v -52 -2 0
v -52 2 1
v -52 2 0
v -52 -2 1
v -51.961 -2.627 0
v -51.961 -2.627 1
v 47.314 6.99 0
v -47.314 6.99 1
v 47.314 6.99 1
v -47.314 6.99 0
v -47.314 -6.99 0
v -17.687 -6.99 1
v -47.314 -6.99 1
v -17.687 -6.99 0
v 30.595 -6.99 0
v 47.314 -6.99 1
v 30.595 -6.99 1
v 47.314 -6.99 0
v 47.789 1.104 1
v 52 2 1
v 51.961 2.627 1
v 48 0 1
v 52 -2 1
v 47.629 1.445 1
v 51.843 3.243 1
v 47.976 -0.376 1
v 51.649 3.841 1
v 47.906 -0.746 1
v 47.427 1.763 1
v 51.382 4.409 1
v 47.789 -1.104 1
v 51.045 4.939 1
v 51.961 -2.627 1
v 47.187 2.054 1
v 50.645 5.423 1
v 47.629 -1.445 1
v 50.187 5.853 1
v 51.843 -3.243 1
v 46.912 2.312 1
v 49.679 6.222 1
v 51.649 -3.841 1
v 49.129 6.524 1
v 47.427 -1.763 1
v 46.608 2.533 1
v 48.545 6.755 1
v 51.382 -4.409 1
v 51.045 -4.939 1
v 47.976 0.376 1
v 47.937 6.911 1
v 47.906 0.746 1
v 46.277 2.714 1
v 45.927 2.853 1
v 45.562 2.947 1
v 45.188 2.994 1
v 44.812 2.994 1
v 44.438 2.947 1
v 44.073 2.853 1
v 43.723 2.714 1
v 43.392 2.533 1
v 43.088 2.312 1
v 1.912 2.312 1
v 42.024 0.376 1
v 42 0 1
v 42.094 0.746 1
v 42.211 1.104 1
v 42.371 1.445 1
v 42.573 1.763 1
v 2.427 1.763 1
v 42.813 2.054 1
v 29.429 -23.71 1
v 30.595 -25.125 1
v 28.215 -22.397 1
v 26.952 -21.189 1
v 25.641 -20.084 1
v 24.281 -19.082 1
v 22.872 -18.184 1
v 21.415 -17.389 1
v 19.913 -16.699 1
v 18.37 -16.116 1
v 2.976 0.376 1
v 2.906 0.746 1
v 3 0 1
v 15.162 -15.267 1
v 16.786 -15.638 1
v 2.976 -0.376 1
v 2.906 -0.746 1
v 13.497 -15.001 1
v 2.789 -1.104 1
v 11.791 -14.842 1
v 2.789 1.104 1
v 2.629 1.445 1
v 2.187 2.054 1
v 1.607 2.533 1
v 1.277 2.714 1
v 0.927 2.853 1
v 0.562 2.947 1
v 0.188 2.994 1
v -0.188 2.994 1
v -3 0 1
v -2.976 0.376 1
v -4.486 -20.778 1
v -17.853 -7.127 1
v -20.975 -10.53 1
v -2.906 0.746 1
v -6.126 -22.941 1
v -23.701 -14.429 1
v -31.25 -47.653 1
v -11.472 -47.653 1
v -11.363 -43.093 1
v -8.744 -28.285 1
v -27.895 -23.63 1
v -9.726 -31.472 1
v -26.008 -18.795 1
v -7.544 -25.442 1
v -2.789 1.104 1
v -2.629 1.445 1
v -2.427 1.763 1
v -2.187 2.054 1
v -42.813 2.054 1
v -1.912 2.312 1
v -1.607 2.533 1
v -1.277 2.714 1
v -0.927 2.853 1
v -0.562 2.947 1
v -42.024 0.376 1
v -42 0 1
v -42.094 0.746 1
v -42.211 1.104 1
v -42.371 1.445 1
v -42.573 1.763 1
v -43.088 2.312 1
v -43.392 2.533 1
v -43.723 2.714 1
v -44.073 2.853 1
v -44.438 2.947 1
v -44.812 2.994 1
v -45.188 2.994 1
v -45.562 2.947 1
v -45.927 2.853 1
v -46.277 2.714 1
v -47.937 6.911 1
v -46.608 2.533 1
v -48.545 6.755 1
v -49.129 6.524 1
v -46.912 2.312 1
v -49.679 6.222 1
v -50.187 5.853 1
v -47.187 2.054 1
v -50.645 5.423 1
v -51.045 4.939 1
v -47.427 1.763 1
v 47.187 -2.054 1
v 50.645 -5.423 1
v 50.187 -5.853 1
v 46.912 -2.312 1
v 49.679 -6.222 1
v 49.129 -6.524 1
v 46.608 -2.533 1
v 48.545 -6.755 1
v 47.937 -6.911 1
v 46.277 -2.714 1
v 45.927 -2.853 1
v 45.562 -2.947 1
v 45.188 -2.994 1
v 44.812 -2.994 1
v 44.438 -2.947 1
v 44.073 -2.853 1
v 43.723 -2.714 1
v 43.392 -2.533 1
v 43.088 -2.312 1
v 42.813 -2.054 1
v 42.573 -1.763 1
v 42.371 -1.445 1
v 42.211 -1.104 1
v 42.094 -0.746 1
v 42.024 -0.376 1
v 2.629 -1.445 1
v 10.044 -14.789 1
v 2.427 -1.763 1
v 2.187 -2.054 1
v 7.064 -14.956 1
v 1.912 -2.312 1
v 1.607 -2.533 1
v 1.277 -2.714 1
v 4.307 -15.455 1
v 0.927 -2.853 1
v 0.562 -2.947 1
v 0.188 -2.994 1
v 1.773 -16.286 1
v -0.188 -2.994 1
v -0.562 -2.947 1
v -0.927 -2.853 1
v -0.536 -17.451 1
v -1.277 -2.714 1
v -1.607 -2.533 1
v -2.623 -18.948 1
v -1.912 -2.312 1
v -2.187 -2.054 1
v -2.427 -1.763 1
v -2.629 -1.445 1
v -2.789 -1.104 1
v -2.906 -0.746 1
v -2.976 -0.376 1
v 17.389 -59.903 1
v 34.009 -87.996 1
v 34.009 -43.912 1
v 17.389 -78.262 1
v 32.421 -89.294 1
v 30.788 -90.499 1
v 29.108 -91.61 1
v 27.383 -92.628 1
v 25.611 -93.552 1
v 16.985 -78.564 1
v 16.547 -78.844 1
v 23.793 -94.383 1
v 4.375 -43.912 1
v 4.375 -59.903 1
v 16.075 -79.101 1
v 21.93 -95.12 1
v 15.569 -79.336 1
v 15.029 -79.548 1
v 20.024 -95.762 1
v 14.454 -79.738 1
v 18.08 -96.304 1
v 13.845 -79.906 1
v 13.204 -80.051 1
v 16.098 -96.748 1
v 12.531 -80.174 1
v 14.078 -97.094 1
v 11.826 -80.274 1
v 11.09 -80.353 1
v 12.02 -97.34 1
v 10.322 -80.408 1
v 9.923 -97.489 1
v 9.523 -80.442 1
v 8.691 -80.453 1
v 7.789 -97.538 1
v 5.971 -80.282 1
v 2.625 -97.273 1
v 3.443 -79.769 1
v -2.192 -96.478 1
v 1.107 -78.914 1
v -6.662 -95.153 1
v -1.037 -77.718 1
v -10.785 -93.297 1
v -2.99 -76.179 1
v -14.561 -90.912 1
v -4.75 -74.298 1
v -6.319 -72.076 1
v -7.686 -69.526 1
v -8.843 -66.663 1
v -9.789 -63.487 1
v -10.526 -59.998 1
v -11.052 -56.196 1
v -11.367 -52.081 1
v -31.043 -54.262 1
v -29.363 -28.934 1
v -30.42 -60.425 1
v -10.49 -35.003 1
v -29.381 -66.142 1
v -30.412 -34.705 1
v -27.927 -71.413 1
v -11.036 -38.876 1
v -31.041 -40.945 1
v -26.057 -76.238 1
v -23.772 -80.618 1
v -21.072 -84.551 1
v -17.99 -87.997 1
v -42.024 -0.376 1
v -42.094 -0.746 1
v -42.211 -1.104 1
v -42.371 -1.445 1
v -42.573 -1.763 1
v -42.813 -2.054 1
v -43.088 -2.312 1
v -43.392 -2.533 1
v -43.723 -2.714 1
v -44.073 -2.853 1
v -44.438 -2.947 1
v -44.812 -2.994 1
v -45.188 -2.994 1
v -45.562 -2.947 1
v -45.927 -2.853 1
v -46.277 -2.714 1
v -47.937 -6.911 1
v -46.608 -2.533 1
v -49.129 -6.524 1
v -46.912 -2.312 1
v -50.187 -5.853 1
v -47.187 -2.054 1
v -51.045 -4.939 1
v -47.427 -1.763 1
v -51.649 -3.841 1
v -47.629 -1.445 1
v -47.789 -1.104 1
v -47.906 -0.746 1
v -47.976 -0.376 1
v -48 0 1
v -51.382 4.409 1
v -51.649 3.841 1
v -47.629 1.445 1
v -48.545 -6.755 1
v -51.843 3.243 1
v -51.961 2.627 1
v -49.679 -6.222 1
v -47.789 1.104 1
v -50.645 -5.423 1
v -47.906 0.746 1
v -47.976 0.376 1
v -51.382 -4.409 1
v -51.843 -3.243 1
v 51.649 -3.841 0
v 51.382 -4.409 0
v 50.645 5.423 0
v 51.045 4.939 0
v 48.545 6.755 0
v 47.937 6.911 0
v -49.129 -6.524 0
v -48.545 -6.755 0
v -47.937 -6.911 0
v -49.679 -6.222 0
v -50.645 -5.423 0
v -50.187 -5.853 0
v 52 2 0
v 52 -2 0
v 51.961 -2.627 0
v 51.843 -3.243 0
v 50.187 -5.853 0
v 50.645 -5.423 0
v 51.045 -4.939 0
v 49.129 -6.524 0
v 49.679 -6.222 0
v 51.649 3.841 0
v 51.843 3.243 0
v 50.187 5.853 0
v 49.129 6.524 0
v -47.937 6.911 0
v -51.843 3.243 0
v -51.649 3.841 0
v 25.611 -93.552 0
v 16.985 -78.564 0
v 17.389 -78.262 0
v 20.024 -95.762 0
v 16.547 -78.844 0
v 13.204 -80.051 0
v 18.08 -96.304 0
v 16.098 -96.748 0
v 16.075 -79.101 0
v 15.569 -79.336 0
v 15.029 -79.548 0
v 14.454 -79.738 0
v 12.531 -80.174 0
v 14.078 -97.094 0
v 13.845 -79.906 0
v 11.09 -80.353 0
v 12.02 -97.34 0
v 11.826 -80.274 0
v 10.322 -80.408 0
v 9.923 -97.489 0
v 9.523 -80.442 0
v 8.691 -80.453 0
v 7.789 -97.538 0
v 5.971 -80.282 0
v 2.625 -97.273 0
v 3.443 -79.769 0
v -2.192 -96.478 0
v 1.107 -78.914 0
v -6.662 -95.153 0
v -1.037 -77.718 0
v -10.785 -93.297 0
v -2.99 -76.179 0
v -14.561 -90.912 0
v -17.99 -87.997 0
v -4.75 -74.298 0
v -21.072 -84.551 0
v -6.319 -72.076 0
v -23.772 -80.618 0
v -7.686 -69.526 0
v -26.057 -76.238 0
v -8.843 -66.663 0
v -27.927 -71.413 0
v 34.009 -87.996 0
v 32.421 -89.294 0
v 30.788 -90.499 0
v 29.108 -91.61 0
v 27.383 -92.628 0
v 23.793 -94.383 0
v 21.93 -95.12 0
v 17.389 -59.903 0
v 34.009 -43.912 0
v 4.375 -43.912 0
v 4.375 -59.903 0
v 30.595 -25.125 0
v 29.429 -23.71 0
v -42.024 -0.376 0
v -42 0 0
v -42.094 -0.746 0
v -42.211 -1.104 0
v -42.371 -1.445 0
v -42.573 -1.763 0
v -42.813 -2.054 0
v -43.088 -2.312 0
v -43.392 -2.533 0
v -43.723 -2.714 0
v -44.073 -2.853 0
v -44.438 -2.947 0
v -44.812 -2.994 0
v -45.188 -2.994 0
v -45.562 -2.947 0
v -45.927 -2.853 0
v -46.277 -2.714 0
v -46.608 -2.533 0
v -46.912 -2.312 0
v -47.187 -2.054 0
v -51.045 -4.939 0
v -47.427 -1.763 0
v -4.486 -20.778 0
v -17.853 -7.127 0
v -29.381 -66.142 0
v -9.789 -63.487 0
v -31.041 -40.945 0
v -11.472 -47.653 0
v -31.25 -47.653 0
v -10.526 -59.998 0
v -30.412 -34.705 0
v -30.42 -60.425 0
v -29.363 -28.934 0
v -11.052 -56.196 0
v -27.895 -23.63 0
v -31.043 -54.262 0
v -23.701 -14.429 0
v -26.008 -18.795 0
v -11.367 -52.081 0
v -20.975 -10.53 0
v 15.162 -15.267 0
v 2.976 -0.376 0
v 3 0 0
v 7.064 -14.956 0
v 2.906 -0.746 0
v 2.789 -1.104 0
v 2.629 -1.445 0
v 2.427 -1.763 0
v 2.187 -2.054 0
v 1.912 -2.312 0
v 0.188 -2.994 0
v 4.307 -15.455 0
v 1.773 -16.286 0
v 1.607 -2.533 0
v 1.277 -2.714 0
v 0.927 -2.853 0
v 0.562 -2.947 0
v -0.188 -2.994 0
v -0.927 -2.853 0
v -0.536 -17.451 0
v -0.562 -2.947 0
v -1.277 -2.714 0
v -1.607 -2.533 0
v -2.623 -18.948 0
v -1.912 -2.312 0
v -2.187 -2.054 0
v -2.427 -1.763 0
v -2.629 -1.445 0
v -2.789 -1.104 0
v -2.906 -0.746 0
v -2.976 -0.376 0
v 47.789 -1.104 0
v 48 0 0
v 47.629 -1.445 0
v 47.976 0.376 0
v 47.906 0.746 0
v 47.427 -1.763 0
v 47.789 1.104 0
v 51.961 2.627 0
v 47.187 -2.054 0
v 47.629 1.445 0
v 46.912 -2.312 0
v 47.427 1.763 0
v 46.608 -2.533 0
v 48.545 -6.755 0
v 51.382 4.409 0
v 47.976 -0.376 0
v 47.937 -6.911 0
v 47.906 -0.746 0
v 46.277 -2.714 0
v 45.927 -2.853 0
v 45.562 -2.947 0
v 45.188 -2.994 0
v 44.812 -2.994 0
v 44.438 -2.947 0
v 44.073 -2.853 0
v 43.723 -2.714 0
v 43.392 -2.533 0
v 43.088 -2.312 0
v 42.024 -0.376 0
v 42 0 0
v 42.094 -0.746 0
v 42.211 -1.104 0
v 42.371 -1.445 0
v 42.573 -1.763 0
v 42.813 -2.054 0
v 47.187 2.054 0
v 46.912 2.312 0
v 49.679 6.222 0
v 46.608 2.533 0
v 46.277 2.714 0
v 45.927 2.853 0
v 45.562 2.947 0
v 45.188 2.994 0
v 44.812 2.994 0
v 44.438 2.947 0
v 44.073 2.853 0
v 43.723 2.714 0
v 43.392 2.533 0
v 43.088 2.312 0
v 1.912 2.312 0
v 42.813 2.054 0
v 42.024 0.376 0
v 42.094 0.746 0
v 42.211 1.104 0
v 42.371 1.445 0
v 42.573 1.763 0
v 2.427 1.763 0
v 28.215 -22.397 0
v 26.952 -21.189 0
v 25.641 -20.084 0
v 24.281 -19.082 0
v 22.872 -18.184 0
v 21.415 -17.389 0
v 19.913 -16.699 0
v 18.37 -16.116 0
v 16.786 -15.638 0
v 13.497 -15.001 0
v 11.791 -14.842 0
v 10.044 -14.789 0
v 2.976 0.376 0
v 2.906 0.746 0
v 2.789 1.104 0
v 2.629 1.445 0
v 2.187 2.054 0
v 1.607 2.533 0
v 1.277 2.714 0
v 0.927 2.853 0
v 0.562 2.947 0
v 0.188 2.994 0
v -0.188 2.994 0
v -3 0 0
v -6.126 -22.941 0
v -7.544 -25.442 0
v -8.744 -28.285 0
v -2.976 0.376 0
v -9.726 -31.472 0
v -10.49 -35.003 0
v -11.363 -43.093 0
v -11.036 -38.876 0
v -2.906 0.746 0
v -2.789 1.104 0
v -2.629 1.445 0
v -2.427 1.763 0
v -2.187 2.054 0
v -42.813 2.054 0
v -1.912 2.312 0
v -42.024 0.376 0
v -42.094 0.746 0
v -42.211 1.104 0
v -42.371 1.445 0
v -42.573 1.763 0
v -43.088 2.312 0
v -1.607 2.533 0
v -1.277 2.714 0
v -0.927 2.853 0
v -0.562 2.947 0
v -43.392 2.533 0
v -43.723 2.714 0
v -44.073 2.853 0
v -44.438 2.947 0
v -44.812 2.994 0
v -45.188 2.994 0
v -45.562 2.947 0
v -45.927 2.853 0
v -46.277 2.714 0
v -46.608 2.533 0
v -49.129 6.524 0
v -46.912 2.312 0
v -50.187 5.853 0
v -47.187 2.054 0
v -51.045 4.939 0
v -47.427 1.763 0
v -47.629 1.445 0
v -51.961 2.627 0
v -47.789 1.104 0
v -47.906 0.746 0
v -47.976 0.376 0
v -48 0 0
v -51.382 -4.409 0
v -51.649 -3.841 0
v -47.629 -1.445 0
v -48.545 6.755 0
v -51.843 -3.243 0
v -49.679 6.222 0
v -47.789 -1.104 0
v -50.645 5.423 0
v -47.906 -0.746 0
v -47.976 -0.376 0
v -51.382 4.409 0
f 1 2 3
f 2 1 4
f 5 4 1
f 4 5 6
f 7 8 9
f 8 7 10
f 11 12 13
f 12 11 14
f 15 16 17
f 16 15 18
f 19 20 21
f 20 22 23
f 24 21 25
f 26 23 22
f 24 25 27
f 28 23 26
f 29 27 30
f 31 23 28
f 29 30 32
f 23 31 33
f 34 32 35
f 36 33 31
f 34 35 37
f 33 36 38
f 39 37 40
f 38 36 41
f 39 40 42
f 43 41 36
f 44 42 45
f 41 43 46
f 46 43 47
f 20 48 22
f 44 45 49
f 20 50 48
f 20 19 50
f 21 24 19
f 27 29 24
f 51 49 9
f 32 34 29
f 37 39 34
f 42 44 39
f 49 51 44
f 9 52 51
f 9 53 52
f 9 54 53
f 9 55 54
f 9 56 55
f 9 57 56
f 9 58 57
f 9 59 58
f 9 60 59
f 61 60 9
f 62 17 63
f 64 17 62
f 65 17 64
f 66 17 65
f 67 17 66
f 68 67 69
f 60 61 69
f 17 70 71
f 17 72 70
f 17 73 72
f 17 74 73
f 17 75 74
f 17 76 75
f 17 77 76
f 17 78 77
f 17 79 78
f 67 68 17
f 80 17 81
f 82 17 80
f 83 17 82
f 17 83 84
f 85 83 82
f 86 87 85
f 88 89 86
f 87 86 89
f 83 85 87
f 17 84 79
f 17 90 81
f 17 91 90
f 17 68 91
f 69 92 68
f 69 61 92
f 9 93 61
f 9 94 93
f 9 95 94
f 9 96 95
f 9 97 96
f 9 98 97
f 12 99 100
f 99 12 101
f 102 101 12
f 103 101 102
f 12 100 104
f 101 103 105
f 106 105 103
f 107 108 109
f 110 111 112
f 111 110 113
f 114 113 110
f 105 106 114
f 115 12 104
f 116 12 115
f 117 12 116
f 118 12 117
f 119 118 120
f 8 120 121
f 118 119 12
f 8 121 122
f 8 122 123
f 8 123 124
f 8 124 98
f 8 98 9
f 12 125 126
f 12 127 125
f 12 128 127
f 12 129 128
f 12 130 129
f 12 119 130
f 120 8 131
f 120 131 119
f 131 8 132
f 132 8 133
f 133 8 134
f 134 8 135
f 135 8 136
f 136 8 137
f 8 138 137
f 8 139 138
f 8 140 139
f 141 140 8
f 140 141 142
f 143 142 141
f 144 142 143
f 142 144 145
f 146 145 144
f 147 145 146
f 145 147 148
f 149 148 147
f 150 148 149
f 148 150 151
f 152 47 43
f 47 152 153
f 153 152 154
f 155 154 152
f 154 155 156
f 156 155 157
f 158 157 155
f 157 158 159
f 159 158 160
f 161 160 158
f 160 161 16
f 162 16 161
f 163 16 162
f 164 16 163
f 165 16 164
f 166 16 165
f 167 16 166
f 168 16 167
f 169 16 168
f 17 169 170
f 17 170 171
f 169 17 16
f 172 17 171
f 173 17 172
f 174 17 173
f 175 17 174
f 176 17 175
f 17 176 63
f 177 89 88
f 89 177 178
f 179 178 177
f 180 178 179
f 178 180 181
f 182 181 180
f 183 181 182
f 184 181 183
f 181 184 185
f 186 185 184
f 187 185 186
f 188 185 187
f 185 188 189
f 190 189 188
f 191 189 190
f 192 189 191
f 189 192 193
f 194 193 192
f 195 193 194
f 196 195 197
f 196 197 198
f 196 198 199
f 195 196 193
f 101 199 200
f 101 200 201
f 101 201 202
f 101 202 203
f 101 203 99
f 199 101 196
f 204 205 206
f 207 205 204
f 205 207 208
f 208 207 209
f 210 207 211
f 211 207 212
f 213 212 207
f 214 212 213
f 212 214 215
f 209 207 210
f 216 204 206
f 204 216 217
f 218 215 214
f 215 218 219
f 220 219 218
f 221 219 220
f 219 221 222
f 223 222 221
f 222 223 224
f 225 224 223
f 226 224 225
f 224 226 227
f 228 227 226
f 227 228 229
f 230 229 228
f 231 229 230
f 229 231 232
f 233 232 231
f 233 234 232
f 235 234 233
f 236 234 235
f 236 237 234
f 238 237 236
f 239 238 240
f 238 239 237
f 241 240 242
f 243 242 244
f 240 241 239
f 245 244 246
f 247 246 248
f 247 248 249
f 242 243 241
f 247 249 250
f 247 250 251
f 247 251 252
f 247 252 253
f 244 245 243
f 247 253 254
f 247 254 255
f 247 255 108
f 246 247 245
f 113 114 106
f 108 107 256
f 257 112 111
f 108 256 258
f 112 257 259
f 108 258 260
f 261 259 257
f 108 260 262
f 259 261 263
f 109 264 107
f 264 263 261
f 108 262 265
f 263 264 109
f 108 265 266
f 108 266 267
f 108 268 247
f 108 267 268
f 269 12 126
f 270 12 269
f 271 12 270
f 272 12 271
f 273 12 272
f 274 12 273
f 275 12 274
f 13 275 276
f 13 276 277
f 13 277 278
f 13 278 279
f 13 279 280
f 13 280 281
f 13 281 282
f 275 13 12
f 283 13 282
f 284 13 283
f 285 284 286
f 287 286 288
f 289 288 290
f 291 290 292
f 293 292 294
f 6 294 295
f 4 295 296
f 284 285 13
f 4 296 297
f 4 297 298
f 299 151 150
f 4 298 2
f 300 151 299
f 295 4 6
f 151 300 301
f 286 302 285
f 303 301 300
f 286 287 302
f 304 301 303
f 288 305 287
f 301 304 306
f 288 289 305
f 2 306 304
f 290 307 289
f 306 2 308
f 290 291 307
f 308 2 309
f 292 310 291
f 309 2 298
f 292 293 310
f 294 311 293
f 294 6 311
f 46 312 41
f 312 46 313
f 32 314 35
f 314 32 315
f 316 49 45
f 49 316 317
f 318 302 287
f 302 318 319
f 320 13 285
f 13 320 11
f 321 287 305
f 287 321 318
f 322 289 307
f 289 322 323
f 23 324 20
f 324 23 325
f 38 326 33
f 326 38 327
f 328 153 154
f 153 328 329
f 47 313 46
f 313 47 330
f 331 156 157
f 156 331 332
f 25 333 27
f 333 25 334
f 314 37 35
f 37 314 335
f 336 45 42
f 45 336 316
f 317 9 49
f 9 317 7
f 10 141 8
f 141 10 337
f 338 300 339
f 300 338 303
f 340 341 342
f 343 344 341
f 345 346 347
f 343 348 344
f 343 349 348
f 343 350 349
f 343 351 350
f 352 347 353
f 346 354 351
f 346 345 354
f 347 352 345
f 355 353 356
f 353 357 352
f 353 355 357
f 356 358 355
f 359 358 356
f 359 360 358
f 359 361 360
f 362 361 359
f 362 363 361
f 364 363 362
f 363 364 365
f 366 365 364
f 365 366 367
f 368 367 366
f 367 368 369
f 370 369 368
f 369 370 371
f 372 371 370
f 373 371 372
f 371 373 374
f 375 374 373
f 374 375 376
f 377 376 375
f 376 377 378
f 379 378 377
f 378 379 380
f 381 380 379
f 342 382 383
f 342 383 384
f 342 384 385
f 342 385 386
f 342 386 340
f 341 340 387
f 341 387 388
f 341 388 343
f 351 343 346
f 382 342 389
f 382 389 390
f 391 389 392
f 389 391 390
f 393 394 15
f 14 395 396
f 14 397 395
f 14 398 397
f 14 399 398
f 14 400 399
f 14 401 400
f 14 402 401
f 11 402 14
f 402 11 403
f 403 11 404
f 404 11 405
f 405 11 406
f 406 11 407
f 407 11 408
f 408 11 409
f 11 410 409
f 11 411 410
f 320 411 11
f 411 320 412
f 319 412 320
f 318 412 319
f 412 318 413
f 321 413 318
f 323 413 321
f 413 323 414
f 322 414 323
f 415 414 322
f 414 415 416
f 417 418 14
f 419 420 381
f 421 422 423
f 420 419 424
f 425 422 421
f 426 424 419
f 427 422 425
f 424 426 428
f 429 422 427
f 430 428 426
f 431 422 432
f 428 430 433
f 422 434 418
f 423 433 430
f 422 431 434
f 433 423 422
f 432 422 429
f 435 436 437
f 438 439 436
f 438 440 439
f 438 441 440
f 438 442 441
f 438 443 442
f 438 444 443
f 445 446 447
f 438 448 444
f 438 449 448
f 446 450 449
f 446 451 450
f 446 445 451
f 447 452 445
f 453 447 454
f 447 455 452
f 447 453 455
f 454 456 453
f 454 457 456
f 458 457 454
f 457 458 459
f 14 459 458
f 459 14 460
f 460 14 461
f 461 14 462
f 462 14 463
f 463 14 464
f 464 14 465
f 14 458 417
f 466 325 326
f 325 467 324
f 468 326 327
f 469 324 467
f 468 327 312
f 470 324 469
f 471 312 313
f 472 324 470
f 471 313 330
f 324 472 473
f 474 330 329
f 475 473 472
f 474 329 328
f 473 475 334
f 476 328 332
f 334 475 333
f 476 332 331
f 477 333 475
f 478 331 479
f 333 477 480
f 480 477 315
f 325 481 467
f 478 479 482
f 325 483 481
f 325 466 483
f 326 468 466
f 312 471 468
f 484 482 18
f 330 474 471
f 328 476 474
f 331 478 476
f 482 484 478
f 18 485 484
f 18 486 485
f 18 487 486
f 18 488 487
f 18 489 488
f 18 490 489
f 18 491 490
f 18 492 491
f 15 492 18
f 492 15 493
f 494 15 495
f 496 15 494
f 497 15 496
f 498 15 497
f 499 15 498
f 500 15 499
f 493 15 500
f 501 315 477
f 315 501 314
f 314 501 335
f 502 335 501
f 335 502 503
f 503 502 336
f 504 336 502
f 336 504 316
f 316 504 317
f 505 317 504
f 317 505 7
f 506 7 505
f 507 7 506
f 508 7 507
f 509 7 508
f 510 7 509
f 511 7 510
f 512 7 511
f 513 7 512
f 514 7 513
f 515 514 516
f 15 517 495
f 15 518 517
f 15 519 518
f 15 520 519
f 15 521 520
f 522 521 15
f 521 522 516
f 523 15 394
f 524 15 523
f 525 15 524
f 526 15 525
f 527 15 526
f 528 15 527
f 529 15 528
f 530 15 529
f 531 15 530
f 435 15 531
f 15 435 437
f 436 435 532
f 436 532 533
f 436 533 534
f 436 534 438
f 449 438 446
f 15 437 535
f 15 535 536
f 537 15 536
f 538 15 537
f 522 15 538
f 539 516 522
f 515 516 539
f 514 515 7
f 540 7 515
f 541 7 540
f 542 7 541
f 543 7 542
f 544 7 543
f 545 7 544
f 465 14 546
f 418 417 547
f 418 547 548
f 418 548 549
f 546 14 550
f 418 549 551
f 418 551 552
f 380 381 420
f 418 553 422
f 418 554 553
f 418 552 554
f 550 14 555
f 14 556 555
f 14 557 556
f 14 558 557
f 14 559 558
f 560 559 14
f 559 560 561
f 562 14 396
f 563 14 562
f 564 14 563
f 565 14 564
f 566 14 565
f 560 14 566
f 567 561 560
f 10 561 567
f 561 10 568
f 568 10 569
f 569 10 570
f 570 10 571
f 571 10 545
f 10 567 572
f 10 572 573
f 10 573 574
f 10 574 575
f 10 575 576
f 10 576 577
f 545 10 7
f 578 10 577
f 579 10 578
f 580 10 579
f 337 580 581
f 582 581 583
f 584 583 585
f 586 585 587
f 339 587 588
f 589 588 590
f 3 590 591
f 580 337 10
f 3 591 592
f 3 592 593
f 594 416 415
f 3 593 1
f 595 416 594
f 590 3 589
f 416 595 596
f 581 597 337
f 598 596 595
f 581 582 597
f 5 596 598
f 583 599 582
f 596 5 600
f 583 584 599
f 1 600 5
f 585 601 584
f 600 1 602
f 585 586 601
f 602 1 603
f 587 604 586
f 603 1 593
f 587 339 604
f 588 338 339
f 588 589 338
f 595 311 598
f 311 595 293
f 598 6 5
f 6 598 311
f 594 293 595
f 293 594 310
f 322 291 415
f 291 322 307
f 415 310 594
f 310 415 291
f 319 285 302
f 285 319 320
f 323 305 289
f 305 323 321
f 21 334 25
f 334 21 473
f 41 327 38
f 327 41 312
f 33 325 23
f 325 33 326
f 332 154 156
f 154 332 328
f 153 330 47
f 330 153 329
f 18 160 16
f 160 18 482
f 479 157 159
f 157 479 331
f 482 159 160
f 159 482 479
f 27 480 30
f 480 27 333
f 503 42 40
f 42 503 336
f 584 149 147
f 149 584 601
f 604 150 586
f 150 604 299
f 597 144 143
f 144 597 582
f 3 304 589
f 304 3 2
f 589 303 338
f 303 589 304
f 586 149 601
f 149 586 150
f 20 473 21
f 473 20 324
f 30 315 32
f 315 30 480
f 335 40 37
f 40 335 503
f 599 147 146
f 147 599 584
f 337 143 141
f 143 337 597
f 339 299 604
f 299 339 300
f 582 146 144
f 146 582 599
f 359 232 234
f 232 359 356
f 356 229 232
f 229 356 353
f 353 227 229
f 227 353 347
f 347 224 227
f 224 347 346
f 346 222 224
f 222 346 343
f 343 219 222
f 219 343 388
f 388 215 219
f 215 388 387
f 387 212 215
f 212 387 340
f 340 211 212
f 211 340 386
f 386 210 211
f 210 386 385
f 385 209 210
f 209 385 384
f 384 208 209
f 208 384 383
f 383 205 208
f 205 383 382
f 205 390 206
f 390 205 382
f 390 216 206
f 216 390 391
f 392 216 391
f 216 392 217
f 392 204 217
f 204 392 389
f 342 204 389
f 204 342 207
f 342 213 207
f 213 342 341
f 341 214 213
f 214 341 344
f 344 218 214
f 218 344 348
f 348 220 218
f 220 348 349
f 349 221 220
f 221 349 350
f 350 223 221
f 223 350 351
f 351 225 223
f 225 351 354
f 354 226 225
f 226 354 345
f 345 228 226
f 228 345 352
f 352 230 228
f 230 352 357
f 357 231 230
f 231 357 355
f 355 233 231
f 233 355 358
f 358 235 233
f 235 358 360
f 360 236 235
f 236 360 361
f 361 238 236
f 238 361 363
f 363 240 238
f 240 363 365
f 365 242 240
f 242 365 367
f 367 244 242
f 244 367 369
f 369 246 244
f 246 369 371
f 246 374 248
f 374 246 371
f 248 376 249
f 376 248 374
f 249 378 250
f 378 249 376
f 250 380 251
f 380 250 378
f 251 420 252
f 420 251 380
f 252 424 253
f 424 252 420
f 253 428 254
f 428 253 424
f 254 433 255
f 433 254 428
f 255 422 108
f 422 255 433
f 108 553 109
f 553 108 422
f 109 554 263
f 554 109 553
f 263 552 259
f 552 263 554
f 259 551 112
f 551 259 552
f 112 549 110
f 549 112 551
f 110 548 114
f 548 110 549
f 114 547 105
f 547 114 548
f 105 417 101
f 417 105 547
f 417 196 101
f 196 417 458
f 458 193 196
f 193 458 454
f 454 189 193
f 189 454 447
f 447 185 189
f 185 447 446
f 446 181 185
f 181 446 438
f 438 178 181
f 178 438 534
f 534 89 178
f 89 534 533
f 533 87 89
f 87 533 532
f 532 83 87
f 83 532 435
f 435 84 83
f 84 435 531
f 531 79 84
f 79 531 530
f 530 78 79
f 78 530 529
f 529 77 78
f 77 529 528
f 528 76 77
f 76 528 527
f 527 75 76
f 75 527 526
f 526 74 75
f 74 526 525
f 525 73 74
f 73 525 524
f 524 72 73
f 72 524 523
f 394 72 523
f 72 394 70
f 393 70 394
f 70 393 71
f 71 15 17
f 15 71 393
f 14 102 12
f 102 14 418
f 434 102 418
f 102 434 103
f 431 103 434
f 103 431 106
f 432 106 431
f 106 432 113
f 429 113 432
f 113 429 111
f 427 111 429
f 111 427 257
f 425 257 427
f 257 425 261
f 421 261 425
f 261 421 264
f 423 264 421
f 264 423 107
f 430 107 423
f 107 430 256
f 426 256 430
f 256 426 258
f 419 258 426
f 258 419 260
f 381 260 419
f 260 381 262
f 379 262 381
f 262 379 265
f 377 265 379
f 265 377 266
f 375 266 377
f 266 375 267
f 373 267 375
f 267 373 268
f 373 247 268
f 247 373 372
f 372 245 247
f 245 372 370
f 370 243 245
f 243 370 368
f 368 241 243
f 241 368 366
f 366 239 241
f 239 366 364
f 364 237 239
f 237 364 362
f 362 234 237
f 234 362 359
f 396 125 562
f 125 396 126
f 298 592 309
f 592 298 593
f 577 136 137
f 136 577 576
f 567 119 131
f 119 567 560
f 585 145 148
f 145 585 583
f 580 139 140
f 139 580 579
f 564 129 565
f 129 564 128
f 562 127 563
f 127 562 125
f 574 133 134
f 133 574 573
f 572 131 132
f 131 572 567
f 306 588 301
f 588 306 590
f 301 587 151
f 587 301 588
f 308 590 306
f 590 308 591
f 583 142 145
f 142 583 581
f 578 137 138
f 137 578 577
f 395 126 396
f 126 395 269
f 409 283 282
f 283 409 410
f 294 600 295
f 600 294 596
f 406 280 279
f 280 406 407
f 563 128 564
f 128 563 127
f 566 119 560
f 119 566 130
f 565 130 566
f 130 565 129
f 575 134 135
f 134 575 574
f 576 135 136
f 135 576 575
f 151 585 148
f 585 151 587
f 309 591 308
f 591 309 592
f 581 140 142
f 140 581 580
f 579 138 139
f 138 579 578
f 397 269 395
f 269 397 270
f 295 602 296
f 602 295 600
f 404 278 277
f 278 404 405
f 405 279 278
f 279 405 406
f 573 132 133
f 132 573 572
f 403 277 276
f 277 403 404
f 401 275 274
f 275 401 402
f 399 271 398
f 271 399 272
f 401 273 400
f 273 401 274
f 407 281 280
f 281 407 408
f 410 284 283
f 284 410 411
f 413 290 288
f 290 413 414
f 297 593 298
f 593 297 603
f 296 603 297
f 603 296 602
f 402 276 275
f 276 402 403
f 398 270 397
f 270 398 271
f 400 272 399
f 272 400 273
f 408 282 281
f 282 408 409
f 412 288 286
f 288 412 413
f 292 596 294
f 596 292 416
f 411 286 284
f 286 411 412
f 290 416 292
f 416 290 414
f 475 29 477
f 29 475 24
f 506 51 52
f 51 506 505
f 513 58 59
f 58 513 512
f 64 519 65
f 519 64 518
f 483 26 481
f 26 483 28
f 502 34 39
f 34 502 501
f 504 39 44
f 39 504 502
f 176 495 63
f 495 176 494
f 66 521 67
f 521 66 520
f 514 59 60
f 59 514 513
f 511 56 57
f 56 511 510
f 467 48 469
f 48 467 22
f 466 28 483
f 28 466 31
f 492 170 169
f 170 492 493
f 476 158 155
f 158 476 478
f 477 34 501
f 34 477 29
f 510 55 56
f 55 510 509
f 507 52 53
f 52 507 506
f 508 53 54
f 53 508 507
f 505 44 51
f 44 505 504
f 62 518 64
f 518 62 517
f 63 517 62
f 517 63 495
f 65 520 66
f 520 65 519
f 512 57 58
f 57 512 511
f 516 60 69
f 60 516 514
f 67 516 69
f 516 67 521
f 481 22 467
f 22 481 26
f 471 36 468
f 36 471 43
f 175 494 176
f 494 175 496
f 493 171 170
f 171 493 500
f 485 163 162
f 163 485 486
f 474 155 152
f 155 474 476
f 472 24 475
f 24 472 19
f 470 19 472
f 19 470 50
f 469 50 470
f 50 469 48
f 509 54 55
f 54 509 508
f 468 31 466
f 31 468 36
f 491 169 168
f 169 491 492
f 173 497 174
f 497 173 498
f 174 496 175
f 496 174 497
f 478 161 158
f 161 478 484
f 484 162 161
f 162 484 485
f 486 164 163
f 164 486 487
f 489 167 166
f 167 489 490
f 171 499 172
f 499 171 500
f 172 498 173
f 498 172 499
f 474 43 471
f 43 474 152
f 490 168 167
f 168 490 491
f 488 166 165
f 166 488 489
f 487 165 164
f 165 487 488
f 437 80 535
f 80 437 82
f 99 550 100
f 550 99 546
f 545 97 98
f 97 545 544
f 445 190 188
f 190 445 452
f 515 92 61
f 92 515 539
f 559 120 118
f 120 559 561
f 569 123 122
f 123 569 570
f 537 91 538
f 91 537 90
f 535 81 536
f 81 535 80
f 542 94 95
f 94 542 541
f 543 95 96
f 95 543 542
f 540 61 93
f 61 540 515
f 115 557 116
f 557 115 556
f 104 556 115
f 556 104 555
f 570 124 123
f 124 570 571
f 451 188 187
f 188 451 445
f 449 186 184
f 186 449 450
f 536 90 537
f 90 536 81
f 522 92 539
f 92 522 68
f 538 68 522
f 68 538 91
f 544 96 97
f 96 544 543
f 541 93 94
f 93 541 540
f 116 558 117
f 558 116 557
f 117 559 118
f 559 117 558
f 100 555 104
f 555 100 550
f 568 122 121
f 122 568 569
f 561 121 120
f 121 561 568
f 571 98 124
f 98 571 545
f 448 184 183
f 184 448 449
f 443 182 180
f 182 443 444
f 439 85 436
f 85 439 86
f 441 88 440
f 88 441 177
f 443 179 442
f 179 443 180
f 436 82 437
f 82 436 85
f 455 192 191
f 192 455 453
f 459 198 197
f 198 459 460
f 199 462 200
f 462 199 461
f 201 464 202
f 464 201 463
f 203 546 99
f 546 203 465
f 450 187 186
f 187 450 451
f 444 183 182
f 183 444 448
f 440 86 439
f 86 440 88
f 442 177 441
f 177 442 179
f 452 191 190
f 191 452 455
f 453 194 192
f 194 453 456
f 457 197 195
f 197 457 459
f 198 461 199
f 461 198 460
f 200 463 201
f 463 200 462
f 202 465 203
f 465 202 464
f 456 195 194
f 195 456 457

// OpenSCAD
$fn = 50;


difference() {
	union() {
		translate(v = [0, 0, 0]) {
			rotate(a = [0, 0, 0]) {
				hull() {
					translate(v = [-47.0000000000, 2.0000000000, 0]) {
						rotate(a = [0, 0, 0]) {
							translate(v = [0, 0, 0]) {
								rotate(a = [0, 0, 0]) {
									cylinder(h = 1, r = 5);
								}
							}
						}
					}
					translate(v = [47.0000000000, 2.0000000000, 0]) {
						rotate(a = [0, 0, 0]) {
							translate(v = [0, 0, 0]) {
								rotate(a = [0, 0, 0]) {
									cylinder(h = 1, r = 5);
								}
							}
						}
					}
					translate(v = [-47.0000000000, -2.0000000000, 0]) {
						rotate(a = [0, 0, 0]) {
							translate(v = [0, 0, 0]) {
								rotate(a = [0, 0, 0]) {
									cylinder(h = 1, r = 5);
								}
							}
						}
					}
					translate(v = [47.0000000000, -2.0000000000, 0]) {
						rotate(a = [0, 0, 0]) {
							translate(v = [0, 0, 0]) {
								rotate(a = [0, 0, 0]) {
									cylinder(h = 1, r = 5);
								}
							}
						}
					}
				}
			}
		}
		translate(v = [0, 0, 0]) {
			rotate(a = [0, 0, 0]) {
				linear_extrude(height = 1) {
					text(font = "DejaVu Sans Mono:style=Bold", halign = "center", size = 95, text = "G", valign = "top");
				}
			}
		}
	}
	union() {
		translate(v = [-45.0000000000, 0.0000000000, -125.0000000000]) {
			rotate(a = [0, 0, 0]) {
				cylinder(h = 250, r = 3.0000000000);
			}
		}
		translate(v = [45.0000000000, 0.0000000000, -125.0000000000]) {
			rotate(a = [0, 0, 0]) {
				cylinder(h = 250, r = 3.0000000000);
			}
		}
		translate(v = [45.0000000000, 0.0000000000, -125.0000000000]) {
			rotate(a = [0, 0, 0]) {
				cylinder(h = 250, r = 3.0000000000);
			}
		}
		translate(v = [0, 0, -125.0000000000]) {
			rotate(a = [0, 0, 0]) {
				cylinder(h = 250, r = 3.0000000000);
			}
		}
	}
}
